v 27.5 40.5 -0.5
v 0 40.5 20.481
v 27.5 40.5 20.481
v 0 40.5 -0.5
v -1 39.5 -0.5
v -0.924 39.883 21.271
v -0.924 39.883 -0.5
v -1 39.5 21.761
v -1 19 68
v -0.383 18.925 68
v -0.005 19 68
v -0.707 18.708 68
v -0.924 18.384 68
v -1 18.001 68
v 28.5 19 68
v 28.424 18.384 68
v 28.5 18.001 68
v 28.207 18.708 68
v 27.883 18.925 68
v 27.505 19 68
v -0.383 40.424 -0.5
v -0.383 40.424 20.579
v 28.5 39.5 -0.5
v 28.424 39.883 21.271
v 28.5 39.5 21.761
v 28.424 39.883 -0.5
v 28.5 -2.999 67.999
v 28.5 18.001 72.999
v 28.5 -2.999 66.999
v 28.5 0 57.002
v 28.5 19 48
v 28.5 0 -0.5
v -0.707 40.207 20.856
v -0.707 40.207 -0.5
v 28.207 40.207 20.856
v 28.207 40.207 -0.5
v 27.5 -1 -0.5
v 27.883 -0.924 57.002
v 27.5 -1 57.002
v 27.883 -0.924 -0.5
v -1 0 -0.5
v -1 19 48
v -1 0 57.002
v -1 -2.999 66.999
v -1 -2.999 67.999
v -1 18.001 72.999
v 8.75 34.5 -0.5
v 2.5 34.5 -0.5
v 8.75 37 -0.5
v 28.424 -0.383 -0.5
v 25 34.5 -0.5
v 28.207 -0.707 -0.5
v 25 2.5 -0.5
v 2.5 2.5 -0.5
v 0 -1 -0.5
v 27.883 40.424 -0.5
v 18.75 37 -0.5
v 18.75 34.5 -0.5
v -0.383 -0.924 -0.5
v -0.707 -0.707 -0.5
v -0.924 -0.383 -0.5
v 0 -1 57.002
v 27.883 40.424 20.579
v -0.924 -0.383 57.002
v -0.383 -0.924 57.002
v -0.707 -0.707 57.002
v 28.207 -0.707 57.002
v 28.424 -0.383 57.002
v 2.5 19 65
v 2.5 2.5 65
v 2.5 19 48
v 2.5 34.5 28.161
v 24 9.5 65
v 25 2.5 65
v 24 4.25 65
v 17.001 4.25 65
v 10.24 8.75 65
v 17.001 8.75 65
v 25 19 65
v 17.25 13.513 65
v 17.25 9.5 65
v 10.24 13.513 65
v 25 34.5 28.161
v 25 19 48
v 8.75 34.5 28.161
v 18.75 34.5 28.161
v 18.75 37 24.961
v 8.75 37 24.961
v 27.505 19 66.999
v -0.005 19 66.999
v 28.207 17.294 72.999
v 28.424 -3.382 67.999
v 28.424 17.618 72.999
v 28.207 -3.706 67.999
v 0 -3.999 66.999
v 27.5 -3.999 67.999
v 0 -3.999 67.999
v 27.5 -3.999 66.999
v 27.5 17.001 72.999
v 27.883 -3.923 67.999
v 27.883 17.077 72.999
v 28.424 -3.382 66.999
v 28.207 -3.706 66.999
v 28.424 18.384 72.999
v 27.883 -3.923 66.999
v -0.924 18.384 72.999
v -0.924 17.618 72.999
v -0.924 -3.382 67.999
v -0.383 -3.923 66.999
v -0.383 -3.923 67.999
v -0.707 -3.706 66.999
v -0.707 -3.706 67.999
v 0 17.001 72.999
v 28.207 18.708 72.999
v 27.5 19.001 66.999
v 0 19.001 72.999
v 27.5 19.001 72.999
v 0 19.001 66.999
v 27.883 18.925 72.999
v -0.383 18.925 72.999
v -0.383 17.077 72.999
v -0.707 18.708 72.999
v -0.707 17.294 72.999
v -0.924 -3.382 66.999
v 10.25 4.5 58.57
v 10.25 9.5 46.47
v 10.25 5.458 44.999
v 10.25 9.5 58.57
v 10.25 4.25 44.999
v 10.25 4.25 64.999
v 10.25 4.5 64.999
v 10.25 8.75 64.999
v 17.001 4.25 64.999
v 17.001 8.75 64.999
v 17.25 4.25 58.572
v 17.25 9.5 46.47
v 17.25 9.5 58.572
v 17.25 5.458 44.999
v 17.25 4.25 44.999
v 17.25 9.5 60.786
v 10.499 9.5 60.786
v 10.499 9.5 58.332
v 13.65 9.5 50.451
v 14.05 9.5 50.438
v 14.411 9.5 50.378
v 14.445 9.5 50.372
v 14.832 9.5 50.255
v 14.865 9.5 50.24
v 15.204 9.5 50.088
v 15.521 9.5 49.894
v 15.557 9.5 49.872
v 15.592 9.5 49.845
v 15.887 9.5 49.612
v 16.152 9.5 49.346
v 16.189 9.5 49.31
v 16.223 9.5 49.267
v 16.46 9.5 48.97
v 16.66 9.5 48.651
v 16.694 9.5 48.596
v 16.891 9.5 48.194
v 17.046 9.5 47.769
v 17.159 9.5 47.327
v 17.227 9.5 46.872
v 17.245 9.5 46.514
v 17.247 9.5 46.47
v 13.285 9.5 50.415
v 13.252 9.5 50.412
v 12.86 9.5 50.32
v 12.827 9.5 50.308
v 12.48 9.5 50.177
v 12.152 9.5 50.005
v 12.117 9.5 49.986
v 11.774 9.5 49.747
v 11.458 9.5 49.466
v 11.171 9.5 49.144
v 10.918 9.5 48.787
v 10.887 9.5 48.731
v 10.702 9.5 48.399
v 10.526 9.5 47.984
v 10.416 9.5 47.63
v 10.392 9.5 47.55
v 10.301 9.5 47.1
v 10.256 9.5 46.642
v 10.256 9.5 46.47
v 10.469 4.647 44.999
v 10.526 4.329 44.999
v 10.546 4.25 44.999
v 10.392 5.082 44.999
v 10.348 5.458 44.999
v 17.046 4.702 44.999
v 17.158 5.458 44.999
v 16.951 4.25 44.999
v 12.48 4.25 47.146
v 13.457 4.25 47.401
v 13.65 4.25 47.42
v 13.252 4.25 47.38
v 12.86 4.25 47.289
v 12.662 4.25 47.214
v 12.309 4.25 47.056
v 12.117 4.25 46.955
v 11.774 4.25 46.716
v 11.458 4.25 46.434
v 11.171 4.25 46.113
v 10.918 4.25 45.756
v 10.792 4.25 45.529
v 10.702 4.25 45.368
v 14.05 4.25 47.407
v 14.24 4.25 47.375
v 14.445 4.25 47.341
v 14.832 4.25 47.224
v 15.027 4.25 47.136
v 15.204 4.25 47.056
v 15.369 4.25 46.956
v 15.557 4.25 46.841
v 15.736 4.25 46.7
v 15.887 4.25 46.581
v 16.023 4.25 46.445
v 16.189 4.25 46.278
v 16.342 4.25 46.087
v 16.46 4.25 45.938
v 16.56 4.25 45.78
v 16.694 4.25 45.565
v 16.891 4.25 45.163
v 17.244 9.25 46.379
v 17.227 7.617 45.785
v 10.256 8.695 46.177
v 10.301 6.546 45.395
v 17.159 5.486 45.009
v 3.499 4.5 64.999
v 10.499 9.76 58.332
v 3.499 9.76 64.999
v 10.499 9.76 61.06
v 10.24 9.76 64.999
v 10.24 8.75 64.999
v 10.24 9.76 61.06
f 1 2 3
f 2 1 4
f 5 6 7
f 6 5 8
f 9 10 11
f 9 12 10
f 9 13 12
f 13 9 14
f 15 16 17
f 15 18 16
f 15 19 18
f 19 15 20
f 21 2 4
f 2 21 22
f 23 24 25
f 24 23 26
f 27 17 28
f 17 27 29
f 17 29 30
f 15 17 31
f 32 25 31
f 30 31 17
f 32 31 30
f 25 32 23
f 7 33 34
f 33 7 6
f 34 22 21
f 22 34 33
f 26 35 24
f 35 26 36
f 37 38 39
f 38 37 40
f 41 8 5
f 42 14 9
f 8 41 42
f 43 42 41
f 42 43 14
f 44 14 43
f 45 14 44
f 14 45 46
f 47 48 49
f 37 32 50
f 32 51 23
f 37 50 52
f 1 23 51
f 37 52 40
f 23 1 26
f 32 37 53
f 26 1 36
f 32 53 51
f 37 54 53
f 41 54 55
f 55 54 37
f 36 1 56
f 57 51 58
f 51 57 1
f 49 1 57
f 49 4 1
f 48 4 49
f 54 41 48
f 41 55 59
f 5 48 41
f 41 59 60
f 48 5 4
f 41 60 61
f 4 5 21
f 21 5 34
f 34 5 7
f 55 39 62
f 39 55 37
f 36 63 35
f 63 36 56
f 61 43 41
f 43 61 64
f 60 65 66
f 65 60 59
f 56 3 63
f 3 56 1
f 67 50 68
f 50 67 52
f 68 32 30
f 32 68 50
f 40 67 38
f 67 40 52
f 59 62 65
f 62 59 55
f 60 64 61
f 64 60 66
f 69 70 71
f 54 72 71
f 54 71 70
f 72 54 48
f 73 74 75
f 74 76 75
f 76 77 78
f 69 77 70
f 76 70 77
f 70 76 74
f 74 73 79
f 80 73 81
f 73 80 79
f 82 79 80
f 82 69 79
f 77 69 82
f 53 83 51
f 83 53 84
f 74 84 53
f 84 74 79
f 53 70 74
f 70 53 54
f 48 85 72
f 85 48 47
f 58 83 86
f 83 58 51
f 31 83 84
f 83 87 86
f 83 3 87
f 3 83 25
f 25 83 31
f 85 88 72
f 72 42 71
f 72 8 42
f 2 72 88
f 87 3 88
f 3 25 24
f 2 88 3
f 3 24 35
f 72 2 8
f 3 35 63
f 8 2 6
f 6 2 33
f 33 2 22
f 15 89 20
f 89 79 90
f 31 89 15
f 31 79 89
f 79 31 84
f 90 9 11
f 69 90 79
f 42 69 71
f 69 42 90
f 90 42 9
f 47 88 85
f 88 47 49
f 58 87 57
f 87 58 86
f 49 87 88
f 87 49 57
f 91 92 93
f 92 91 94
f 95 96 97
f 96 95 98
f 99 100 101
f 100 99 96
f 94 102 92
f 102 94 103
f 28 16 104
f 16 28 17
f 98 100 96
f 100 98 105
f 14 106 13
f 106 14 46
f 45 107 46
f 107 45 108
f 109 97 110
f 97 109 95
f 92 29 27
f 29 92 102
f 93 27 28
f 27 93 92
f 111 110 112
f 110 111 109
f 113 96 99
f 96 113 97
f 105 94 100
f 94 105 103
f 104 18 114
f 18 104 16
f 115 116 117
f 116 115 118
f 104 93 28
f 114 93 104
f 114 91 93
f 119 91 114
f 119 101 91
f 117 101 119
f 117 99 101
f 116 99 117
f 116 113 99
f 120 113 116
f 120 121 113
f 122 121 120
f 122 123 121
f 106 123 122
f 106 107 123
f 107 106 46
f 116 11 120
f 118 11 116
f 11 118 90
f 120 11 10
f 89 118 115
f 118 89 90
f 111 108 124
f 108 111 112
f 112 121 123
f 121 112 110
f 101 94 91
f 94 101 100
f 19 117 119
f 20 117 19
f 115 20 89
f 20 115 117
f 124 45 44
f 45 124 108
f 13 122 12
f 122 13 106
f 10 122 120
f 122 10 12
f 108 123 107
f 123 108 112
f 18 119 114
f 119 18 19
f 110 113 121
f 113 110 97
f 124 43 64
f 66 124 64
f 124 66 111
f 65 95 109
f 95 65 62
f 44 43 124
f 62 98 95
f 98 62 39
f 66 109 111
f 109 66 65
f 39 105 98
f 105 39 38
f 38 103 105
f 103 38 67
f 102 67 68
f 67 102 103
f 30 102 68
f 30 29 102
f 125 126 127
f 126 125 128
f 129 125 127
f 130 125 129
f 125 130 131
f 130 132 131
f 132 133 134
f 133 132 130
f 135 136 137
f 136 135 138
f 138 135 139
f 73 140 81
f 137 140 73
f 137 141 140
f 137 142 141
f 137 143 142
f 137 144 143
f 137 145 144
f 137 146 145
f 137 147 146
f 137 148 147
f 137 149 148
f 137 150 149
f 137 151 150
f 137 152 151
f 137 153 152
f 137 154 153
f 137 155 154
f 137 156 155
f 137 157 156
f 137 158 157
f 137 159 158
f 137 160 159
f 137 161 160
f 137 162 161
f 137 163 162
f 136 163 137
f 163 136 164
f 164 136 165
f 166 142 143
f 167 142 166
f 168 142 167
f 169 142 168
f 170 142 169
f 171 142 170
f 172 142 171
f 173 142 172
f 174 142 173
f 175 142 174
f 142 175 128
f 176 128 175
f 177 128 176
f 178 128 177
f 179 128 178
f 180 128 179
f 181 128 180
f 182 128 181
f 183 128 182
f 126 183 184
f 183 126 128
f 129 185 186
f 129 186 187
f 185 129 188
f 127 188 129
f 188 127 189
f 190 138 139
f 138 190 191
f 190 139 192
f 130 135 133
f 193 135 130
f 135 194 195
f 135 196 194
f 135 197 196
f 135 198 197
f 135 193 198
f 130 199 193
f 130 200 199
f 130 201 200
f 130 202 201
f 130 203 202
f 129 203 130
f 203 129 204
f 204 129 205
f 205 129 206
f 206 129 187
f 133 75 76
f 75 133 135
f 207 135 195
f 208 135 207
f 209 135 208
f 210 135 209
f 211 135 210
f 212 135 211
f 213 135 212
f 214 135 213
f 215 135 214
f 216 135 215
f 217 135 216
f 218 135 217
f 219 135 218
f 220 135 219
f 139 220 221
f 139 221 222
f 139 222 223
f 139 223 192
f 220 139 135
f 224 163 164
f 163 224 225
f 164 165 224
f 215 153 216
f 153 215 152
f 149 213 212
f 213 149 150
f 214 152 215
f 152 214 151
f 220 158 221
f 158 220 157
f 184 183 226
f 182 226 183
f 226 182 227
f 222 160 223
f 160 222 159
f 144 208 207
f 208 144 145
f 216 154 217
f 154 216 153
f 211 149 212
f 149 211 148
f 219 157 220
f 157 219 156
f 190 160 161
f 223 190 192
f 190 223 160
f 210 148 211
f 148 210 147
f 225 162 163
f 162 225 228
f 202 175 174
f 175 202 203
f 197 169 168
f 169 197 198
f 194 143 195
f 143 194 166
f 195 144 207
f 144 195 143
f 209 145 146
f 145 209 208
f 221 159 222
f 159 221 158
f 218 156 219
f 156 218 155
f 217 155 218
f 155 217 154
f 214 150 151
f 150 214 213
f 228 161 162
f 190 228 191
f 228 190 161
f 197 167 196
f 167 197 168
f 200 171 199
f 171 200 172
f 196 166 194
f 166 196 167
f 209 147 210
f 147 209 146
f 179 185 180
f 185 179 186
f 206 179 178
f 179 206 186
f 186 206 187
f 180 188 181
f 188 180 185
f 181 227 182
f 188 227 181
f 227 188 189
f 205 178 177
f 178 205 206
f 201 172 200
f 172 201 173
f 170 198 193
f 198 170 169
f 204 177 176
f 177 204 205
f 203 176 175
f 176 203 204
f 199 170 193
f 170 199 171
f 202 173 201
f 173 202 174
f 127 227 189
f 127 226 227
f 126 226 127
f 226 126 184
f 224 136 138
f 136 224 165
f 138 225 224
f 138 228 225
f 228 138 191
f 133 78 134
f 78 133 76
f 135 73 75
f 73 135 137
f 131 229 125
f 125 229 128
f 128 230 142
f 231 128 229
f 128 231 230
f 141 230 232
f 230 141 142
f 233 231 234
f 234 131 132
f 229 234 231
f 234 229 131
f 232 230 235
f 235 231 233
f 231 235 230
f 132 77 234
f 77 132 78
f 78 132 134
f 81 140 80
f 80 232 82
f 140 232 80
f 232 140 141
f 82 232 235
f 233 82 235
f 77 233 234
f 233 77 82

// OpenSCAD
$fa = 1;
$fs = 0.4;

// Width of magazine in mm
widthOfMag = 22.5;
// Depth of magazine in mm
depthOfMag = 32;
// Height of speedloader in mm
height = 65;
// Width of plunger in mm
widthOfPlunger = 7;
// Length of plunger in mm
lengthOfPlunger = 20;
// Thickness of walls in mm
thickness = 2.5;
// How deep the cutout should be at the top
cutoutDepthTop = 13;
// How far down the cutout should go
cutoutHeightTop = lengthOfPlunger * 2.5;

makeOuterShell();
makePlunger();

module makePlunger() {
    translate([0, -0.75, 0])
    union() {
        makeBasePlunger();
        makePlungerLeftSupport();
        makePlungerRightSupport();
        makePlungerFrontSupport();
    }
}

module makeBasePlunger() {
    translate([(widthOfMag - widthOfPlunger) / 2 + thickness, thickness * 2, height - lengthOfPlunger - 0.001])
    difference() {
        // overall plunger
        cube([widthOfPlunger, widthOfPlunger * 0.75, lengthOfPlunger]);
  
        // indent
        translate([widthOfPlunger / 2, widthOfPlunger + 1, 3])
            rotate([120, 0, 0])
            cylinder(r = widthOfPlunger / 2, h = widthOfPlunger * 2);
        
        translate([-0.5, 10, 3.2])
        rotate([200, 0, 0])
        cube([widthOfPlunger + 1, widthOfPlunger * 2, thickness]);
    }
}

module makePlungerLeftSupport() {
    translate([widthOfMag + thickness + 0.001 - 1, thickness * 2 + widthOfPlunger * 0.75, height + 0.001])
    rotate([0, 180, 90])
    prism(widthOfPlunger * 0.75, widthOfPlunger, lengthOfPlunger / 3);
}
    
module makePlungerRightSupport() {
    translate([thickness - 0.001 + 1, widthOfPlunger * 0.75, height - 0.001])
    rotate([0, 180, -90])
    prism(widthOfPlunger * 0.75 + 0.01, widthOfPlunger, lengthOfPlunger / 3);
}

module makePlungerFrontSupport() {
    translate([(widthOfMag - widthOfPlunger) / 2 + thickness + widthOfPlunger, widthOfPlunger + thickness, height - thickness * 2 - 0.001])
    rotate([-90, 180, 0])
    prism(widthOfPlunger + 0.01, widthOfPlunger, lengthOfPlunger / 3);
}

module makeOuterShell() {
    difference() {
        minkowski() {
            cube ([widthOfMag + thickness * 2, depthOfMag + thickness * 3, height + thickness]);
            
            cylinder(1, center=true);
        }

        // hollow out the inner space
        translate([thickness, thickness, -thickness])
            cube ([widthOfMag, depthOfMag, height + thickness]);

        // cut out the angled bit
        translate([-thickness/2, 19, 48])
        rotate([-52, 0, 0])
        cube([widthOfMag + thickness * 3, 50, 30]);
        
        // cut out the square at the top
        translate([-thickness/2, 19, 48])
        cube([widthOfMag + thickness * 3, 50, 30]);
        
        // cut out notch for weird triangle thing
        translate([(widthOfMag - 10 + thickness * 2) / 2, depthOfMag + thickness, -1])
        cube([10, thickness, 50]);
    }
    
    makeComfortAngleTop();
    makeComfortAngleSide();
}

module makeComfortAngleTop() {
    translate([0, -2.999, height + thickness - 0.001])
    minkowski() {
        prism(widthOfMag + thickness * 2, cutoutDepthTop + thickness * 2 + 3, 5);
        
        cylinder(1, center=true);
    }    
}
    
module makeComfortAngleSide() {
    translate([0, -2.999, height + thickness - 0.001])
    minkowski() {
        rotate([180, 0, 0])
        mirror(v = [0, 1, 0])
        prism(widthOfMag + thickness * 2, 3, 10);
        
        cylinder(1, center=true);
    }
}

// From https://en.wikibooks.org/wiki/OpenSCAD_User_Manual/Primitive_Solids
module prism(l, w, h){
    polyhedron(
        points=[[0,0,0], [l,0,0], [l,w,0], [0,w,0], [0,w,h], [l,w,h]],
        faces=[[0,1,2,3],[5,4,3,2],[0,4,5,1],[0,3,4],[5,2,1]]
    );
}
